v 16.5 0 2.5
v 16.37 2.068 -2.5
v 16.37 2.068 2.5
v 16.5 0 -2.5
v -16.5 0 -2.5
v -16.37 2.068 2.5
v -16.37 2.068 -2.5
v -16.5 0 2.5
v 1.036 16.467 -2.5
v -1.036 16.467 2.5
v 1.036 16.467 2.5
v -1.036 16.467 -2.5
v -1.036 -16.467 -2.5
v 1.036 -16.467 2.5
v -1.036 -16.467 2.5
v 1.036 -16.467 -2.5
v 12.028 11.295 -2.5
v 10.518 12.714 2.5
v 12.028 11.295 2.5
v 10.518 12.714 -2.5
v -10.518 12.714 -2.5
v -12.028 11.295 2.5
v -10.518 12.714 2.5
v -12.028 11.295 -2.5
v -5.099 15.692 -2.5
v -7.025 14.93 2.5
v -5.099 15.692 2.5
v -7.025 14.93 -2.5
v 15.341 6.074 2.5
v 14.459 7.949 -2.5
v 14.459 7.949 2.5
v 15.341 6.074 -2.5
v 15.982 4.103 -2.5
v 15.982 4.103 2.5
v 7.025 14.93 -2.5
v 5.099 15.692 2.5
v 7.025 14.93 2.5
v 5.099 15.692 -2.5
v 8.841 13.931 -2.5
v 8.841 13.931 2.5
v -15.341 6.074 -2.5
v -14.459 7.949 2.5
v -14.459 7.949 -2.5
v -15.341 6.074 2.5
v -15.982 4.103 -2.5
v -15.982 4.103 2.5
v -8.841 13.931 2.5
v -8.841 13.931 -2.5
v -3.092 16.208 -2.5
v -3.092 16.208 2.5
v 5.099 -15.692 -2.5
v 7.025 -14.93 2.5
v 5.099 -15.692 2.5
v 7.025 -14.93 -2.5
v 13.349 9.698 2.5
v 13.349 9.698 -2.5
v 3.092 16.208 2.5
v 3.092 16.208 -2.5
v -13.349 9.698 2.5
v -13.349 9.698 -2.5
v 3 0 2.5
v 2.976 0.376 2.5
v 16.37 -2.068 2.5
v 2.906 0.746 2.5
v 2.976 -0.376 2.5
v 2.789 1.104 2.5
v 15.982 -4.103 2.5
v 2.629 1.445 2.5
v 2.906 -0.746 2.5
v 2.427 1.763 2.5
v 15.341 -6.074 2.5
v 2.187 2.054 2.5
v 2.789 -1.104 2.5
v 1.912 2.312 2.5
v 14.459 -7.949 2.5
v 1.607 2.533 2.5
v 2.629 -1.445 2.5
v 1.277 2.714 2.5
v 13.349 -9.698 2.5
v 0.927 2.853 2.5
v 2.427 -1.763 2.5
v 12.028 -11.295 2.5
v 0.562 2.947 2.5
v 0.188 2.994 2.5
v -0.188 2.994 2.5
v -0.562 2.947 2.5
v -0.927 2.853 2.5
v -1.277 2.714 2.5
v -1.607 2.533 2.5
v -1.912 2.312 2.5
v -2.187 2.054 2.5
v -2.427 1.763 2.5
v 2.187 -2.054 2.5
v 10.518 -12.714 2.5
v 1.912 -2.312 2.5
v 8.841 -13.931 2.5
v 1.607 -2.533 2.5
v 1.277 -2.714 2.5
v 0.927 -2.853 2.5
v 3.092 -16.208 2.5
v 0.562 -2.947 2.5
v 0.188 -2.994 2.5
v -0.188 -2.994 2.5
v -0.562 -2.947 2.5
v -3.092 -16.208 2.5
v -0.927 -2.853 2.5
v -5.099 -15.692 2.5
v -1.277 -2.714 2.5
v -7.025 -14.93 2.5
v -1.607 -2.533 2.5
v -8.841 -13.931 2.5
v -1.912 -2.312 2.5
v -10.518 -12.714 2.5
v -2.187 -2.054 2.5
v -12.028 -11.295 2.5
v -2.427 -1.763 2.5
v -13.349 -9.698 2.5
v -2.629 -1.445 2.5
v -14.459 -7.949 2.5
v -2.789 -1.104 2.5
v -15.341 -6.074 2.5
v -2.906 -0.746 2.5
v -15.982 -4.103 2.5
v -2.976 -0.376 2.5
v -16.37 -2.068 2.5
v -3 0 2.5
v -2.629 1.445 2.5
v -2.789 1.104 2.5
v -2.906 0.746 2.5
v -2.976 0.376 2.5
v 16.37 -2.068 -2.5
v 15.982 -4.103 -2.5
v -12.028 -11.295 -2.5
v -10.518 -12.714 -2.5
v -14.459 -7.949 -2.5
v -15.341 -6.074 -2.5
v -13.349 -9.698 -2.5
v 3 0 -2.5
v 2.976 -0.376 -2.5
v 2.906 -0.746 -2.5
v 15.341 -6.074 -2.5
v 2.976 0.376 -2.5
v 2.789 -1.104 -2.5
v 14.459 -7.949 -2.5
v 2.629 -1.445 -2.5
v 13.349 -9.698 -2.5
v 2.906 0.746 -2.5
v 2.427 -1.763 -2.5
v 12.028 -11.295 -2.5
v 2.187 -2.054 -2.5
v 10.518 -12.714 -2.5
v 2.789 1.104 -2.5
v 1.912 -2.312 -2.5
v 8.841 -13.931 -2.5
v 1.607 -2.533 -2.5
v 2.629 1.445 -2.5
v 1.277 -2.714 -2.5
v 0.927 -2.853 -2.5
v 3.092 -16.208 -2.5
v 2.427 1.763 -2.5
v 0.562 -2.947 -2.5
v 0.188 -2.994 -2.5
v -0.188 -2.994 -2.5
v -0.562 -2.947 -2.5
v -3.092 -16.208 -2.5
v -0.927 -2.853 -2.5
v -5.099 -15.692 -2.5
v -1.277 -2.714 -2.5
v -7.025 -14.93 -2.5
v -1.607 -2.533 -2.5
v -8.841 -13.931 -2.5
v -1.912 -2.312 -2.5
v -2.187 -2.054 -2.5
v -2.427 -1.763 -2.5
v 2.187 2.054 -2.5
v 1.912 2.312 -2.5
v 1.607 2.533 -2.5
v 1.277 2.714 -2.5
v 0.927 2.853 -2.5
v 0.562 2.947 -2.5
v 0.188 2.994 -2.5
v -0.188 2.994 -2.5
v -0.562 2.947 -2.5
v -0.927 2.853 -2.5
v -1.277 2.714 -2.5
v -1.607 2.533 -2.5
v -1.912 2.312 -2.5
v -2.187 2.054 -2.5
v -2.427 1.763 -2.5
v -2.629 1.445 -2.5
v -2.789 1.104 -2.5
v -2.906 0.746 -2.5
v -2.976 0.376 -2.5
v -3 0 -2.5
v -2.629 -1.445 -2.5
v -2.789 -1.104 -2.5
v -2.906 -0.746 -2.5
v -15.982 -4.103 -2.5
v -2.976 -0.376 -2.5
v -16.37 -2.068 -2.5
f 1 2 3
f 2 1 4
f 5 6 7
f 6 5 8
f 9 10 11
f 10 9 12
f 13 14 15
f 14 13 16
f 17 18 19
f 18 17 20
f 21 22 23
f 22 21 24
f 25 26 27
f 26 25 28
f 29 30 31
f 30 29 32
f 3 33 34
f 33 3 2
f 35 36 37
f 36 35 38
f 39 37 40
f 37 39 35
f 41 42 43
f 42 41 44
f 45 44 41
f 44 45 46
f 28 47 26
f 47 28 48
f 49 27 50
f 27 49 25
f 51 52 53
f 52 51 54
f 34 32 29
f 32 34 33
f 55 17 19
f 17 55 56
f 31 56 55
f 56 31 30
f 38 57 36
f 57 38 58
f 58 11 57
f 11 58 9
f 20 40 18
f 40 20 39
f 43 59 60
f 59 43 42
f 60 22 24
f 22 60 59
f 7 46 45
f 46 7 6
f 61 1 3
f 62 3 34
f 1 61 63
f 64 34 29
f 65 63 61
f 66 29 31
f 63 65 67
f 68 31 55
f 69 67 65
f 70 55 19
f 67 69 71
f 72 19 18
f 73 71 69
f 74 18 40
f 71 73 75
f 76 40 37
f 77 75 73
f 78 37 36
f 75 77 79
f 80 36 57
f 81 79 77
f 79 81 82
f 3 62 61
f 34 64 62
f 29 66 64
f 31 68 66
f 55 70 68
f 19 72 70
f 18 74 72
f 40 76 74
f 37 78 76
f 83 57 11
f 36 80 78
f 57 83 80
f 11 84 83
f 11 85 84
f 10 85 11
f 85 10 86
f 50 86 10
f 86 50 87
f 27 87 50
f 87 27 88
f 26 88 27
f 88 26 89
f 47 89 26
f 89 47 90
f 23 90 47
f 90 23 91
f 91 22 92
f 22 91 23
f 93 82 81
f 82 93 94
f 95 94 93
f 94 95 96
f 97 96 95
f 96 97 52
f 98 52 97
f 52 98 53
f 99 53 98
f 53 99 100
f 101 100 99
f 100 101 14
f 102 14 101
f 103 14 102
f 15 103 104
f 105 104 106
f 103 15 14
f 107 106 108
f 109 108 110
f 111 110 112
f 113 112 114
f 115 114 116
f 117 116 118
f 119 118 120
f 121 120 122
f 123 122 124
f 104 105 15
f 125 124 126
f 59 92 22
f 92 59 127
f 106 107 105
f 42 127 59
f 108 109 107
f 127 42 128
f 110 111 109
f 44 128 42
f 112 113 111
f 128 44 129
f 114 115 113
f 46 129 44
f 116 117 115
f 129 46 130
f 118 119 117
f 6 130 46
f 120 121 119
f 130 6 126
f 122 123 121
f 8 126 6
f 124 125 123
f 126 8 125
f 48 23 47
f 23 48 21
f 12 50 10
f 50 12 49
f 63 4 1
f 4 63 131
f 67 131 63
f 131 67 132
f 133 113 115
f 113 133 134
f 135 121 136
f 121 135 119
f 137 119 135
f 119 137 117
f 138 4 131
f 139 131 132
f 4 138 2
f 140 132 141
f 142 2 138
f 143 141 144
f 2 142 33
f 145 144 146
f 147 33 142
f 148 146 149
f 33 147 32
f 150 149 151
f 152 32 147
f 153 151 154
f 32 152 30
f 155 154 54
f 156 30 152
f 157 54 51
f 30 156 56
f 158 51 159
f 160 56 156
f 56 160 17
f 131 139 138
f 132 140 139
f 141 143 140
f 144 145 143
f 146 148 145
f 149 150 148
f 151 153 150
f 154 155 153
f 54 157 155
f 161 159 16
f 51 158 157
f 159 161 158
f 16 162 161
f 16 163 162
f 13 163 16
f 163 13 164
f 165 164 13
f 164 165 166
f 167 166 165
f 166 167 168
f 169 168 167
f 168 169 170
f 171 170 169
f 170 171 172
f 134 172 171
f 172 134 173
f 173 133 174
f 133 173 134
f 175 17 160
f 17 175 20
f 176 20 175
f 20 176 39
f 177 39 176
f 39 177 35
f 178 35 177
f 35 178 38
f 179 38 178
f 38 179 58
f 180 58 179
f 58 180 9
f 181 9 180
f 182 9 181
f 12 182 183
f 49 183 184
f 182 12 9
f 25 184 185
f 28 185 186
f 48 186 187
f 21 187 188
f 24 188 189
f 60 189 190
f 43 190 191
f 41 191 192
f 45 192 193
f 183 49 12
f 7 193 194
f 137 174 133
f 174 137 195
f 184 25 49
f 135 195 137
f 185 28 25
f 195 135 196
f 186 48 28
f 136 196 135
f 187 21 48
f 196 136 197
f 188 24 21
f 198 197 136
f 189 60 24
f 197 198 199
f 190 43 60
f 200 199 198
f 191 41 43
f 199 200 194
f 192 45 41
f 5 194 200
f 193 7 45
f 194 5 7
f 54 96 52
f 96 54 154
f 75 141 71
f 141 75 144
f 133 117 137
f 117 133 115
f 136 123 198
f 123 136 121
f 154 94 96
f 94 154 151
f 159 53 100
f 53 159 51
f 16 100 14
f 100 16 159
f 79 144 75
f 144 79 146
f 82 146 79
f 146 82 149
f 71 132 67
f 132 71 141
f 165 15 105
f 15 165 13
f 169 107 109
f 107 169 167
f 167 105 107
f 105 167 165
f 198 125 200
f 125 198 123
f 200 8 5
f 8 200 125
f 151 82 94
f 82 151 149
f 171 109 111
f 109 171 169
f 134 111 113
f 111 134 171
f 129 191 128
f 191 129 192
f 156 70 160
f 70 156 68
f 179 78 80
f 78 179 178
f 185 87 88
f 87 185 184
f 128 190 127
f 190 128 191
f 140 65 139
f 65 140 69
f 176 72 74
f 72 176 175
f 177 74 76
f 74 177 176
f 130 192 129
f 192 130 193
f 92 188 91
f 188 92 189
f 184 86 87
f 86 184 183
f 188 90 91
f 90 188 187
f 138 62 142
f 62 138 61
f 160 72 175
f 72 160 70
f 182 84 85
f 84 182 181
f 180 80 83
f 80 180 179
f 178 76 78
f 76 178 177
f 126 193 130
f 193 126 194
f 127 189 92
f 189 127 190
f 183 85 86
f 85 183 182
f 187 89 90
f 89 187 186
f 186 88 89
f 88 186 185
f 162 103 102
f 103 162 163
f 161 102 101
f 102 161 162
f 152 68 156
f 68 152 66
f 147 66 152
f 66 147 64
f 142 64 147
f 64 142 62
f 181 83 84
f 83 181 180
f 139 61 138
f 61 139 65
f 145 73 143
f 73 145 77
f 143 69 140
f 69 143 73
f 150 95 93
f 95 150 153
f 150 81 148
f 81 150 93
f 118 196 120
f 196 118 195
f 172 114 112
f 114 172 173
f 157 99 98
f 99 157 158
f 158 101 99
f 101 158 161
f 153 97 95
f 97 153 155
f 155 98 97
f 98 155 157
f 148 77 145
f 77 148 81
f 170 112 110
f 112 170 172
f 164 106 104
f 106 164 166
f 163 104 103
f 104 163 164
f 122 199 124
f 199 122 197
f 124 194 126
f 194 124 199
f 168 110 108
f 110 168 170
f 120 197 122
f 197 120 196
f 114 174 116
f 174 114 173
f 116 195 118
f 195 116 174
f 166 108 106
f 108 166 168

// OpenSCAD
$fn = 50;


difference() {
	union() {
		translate(v = [0, 0, -2.5000000000]) {
			cylinder(h = 5, r = 16.5000000000);
		}
	}
	union() {
		translate(v = [0, 0, -100.0000000000]) {
			cylinder(h = 200, r = 3);
		}
	}
}
